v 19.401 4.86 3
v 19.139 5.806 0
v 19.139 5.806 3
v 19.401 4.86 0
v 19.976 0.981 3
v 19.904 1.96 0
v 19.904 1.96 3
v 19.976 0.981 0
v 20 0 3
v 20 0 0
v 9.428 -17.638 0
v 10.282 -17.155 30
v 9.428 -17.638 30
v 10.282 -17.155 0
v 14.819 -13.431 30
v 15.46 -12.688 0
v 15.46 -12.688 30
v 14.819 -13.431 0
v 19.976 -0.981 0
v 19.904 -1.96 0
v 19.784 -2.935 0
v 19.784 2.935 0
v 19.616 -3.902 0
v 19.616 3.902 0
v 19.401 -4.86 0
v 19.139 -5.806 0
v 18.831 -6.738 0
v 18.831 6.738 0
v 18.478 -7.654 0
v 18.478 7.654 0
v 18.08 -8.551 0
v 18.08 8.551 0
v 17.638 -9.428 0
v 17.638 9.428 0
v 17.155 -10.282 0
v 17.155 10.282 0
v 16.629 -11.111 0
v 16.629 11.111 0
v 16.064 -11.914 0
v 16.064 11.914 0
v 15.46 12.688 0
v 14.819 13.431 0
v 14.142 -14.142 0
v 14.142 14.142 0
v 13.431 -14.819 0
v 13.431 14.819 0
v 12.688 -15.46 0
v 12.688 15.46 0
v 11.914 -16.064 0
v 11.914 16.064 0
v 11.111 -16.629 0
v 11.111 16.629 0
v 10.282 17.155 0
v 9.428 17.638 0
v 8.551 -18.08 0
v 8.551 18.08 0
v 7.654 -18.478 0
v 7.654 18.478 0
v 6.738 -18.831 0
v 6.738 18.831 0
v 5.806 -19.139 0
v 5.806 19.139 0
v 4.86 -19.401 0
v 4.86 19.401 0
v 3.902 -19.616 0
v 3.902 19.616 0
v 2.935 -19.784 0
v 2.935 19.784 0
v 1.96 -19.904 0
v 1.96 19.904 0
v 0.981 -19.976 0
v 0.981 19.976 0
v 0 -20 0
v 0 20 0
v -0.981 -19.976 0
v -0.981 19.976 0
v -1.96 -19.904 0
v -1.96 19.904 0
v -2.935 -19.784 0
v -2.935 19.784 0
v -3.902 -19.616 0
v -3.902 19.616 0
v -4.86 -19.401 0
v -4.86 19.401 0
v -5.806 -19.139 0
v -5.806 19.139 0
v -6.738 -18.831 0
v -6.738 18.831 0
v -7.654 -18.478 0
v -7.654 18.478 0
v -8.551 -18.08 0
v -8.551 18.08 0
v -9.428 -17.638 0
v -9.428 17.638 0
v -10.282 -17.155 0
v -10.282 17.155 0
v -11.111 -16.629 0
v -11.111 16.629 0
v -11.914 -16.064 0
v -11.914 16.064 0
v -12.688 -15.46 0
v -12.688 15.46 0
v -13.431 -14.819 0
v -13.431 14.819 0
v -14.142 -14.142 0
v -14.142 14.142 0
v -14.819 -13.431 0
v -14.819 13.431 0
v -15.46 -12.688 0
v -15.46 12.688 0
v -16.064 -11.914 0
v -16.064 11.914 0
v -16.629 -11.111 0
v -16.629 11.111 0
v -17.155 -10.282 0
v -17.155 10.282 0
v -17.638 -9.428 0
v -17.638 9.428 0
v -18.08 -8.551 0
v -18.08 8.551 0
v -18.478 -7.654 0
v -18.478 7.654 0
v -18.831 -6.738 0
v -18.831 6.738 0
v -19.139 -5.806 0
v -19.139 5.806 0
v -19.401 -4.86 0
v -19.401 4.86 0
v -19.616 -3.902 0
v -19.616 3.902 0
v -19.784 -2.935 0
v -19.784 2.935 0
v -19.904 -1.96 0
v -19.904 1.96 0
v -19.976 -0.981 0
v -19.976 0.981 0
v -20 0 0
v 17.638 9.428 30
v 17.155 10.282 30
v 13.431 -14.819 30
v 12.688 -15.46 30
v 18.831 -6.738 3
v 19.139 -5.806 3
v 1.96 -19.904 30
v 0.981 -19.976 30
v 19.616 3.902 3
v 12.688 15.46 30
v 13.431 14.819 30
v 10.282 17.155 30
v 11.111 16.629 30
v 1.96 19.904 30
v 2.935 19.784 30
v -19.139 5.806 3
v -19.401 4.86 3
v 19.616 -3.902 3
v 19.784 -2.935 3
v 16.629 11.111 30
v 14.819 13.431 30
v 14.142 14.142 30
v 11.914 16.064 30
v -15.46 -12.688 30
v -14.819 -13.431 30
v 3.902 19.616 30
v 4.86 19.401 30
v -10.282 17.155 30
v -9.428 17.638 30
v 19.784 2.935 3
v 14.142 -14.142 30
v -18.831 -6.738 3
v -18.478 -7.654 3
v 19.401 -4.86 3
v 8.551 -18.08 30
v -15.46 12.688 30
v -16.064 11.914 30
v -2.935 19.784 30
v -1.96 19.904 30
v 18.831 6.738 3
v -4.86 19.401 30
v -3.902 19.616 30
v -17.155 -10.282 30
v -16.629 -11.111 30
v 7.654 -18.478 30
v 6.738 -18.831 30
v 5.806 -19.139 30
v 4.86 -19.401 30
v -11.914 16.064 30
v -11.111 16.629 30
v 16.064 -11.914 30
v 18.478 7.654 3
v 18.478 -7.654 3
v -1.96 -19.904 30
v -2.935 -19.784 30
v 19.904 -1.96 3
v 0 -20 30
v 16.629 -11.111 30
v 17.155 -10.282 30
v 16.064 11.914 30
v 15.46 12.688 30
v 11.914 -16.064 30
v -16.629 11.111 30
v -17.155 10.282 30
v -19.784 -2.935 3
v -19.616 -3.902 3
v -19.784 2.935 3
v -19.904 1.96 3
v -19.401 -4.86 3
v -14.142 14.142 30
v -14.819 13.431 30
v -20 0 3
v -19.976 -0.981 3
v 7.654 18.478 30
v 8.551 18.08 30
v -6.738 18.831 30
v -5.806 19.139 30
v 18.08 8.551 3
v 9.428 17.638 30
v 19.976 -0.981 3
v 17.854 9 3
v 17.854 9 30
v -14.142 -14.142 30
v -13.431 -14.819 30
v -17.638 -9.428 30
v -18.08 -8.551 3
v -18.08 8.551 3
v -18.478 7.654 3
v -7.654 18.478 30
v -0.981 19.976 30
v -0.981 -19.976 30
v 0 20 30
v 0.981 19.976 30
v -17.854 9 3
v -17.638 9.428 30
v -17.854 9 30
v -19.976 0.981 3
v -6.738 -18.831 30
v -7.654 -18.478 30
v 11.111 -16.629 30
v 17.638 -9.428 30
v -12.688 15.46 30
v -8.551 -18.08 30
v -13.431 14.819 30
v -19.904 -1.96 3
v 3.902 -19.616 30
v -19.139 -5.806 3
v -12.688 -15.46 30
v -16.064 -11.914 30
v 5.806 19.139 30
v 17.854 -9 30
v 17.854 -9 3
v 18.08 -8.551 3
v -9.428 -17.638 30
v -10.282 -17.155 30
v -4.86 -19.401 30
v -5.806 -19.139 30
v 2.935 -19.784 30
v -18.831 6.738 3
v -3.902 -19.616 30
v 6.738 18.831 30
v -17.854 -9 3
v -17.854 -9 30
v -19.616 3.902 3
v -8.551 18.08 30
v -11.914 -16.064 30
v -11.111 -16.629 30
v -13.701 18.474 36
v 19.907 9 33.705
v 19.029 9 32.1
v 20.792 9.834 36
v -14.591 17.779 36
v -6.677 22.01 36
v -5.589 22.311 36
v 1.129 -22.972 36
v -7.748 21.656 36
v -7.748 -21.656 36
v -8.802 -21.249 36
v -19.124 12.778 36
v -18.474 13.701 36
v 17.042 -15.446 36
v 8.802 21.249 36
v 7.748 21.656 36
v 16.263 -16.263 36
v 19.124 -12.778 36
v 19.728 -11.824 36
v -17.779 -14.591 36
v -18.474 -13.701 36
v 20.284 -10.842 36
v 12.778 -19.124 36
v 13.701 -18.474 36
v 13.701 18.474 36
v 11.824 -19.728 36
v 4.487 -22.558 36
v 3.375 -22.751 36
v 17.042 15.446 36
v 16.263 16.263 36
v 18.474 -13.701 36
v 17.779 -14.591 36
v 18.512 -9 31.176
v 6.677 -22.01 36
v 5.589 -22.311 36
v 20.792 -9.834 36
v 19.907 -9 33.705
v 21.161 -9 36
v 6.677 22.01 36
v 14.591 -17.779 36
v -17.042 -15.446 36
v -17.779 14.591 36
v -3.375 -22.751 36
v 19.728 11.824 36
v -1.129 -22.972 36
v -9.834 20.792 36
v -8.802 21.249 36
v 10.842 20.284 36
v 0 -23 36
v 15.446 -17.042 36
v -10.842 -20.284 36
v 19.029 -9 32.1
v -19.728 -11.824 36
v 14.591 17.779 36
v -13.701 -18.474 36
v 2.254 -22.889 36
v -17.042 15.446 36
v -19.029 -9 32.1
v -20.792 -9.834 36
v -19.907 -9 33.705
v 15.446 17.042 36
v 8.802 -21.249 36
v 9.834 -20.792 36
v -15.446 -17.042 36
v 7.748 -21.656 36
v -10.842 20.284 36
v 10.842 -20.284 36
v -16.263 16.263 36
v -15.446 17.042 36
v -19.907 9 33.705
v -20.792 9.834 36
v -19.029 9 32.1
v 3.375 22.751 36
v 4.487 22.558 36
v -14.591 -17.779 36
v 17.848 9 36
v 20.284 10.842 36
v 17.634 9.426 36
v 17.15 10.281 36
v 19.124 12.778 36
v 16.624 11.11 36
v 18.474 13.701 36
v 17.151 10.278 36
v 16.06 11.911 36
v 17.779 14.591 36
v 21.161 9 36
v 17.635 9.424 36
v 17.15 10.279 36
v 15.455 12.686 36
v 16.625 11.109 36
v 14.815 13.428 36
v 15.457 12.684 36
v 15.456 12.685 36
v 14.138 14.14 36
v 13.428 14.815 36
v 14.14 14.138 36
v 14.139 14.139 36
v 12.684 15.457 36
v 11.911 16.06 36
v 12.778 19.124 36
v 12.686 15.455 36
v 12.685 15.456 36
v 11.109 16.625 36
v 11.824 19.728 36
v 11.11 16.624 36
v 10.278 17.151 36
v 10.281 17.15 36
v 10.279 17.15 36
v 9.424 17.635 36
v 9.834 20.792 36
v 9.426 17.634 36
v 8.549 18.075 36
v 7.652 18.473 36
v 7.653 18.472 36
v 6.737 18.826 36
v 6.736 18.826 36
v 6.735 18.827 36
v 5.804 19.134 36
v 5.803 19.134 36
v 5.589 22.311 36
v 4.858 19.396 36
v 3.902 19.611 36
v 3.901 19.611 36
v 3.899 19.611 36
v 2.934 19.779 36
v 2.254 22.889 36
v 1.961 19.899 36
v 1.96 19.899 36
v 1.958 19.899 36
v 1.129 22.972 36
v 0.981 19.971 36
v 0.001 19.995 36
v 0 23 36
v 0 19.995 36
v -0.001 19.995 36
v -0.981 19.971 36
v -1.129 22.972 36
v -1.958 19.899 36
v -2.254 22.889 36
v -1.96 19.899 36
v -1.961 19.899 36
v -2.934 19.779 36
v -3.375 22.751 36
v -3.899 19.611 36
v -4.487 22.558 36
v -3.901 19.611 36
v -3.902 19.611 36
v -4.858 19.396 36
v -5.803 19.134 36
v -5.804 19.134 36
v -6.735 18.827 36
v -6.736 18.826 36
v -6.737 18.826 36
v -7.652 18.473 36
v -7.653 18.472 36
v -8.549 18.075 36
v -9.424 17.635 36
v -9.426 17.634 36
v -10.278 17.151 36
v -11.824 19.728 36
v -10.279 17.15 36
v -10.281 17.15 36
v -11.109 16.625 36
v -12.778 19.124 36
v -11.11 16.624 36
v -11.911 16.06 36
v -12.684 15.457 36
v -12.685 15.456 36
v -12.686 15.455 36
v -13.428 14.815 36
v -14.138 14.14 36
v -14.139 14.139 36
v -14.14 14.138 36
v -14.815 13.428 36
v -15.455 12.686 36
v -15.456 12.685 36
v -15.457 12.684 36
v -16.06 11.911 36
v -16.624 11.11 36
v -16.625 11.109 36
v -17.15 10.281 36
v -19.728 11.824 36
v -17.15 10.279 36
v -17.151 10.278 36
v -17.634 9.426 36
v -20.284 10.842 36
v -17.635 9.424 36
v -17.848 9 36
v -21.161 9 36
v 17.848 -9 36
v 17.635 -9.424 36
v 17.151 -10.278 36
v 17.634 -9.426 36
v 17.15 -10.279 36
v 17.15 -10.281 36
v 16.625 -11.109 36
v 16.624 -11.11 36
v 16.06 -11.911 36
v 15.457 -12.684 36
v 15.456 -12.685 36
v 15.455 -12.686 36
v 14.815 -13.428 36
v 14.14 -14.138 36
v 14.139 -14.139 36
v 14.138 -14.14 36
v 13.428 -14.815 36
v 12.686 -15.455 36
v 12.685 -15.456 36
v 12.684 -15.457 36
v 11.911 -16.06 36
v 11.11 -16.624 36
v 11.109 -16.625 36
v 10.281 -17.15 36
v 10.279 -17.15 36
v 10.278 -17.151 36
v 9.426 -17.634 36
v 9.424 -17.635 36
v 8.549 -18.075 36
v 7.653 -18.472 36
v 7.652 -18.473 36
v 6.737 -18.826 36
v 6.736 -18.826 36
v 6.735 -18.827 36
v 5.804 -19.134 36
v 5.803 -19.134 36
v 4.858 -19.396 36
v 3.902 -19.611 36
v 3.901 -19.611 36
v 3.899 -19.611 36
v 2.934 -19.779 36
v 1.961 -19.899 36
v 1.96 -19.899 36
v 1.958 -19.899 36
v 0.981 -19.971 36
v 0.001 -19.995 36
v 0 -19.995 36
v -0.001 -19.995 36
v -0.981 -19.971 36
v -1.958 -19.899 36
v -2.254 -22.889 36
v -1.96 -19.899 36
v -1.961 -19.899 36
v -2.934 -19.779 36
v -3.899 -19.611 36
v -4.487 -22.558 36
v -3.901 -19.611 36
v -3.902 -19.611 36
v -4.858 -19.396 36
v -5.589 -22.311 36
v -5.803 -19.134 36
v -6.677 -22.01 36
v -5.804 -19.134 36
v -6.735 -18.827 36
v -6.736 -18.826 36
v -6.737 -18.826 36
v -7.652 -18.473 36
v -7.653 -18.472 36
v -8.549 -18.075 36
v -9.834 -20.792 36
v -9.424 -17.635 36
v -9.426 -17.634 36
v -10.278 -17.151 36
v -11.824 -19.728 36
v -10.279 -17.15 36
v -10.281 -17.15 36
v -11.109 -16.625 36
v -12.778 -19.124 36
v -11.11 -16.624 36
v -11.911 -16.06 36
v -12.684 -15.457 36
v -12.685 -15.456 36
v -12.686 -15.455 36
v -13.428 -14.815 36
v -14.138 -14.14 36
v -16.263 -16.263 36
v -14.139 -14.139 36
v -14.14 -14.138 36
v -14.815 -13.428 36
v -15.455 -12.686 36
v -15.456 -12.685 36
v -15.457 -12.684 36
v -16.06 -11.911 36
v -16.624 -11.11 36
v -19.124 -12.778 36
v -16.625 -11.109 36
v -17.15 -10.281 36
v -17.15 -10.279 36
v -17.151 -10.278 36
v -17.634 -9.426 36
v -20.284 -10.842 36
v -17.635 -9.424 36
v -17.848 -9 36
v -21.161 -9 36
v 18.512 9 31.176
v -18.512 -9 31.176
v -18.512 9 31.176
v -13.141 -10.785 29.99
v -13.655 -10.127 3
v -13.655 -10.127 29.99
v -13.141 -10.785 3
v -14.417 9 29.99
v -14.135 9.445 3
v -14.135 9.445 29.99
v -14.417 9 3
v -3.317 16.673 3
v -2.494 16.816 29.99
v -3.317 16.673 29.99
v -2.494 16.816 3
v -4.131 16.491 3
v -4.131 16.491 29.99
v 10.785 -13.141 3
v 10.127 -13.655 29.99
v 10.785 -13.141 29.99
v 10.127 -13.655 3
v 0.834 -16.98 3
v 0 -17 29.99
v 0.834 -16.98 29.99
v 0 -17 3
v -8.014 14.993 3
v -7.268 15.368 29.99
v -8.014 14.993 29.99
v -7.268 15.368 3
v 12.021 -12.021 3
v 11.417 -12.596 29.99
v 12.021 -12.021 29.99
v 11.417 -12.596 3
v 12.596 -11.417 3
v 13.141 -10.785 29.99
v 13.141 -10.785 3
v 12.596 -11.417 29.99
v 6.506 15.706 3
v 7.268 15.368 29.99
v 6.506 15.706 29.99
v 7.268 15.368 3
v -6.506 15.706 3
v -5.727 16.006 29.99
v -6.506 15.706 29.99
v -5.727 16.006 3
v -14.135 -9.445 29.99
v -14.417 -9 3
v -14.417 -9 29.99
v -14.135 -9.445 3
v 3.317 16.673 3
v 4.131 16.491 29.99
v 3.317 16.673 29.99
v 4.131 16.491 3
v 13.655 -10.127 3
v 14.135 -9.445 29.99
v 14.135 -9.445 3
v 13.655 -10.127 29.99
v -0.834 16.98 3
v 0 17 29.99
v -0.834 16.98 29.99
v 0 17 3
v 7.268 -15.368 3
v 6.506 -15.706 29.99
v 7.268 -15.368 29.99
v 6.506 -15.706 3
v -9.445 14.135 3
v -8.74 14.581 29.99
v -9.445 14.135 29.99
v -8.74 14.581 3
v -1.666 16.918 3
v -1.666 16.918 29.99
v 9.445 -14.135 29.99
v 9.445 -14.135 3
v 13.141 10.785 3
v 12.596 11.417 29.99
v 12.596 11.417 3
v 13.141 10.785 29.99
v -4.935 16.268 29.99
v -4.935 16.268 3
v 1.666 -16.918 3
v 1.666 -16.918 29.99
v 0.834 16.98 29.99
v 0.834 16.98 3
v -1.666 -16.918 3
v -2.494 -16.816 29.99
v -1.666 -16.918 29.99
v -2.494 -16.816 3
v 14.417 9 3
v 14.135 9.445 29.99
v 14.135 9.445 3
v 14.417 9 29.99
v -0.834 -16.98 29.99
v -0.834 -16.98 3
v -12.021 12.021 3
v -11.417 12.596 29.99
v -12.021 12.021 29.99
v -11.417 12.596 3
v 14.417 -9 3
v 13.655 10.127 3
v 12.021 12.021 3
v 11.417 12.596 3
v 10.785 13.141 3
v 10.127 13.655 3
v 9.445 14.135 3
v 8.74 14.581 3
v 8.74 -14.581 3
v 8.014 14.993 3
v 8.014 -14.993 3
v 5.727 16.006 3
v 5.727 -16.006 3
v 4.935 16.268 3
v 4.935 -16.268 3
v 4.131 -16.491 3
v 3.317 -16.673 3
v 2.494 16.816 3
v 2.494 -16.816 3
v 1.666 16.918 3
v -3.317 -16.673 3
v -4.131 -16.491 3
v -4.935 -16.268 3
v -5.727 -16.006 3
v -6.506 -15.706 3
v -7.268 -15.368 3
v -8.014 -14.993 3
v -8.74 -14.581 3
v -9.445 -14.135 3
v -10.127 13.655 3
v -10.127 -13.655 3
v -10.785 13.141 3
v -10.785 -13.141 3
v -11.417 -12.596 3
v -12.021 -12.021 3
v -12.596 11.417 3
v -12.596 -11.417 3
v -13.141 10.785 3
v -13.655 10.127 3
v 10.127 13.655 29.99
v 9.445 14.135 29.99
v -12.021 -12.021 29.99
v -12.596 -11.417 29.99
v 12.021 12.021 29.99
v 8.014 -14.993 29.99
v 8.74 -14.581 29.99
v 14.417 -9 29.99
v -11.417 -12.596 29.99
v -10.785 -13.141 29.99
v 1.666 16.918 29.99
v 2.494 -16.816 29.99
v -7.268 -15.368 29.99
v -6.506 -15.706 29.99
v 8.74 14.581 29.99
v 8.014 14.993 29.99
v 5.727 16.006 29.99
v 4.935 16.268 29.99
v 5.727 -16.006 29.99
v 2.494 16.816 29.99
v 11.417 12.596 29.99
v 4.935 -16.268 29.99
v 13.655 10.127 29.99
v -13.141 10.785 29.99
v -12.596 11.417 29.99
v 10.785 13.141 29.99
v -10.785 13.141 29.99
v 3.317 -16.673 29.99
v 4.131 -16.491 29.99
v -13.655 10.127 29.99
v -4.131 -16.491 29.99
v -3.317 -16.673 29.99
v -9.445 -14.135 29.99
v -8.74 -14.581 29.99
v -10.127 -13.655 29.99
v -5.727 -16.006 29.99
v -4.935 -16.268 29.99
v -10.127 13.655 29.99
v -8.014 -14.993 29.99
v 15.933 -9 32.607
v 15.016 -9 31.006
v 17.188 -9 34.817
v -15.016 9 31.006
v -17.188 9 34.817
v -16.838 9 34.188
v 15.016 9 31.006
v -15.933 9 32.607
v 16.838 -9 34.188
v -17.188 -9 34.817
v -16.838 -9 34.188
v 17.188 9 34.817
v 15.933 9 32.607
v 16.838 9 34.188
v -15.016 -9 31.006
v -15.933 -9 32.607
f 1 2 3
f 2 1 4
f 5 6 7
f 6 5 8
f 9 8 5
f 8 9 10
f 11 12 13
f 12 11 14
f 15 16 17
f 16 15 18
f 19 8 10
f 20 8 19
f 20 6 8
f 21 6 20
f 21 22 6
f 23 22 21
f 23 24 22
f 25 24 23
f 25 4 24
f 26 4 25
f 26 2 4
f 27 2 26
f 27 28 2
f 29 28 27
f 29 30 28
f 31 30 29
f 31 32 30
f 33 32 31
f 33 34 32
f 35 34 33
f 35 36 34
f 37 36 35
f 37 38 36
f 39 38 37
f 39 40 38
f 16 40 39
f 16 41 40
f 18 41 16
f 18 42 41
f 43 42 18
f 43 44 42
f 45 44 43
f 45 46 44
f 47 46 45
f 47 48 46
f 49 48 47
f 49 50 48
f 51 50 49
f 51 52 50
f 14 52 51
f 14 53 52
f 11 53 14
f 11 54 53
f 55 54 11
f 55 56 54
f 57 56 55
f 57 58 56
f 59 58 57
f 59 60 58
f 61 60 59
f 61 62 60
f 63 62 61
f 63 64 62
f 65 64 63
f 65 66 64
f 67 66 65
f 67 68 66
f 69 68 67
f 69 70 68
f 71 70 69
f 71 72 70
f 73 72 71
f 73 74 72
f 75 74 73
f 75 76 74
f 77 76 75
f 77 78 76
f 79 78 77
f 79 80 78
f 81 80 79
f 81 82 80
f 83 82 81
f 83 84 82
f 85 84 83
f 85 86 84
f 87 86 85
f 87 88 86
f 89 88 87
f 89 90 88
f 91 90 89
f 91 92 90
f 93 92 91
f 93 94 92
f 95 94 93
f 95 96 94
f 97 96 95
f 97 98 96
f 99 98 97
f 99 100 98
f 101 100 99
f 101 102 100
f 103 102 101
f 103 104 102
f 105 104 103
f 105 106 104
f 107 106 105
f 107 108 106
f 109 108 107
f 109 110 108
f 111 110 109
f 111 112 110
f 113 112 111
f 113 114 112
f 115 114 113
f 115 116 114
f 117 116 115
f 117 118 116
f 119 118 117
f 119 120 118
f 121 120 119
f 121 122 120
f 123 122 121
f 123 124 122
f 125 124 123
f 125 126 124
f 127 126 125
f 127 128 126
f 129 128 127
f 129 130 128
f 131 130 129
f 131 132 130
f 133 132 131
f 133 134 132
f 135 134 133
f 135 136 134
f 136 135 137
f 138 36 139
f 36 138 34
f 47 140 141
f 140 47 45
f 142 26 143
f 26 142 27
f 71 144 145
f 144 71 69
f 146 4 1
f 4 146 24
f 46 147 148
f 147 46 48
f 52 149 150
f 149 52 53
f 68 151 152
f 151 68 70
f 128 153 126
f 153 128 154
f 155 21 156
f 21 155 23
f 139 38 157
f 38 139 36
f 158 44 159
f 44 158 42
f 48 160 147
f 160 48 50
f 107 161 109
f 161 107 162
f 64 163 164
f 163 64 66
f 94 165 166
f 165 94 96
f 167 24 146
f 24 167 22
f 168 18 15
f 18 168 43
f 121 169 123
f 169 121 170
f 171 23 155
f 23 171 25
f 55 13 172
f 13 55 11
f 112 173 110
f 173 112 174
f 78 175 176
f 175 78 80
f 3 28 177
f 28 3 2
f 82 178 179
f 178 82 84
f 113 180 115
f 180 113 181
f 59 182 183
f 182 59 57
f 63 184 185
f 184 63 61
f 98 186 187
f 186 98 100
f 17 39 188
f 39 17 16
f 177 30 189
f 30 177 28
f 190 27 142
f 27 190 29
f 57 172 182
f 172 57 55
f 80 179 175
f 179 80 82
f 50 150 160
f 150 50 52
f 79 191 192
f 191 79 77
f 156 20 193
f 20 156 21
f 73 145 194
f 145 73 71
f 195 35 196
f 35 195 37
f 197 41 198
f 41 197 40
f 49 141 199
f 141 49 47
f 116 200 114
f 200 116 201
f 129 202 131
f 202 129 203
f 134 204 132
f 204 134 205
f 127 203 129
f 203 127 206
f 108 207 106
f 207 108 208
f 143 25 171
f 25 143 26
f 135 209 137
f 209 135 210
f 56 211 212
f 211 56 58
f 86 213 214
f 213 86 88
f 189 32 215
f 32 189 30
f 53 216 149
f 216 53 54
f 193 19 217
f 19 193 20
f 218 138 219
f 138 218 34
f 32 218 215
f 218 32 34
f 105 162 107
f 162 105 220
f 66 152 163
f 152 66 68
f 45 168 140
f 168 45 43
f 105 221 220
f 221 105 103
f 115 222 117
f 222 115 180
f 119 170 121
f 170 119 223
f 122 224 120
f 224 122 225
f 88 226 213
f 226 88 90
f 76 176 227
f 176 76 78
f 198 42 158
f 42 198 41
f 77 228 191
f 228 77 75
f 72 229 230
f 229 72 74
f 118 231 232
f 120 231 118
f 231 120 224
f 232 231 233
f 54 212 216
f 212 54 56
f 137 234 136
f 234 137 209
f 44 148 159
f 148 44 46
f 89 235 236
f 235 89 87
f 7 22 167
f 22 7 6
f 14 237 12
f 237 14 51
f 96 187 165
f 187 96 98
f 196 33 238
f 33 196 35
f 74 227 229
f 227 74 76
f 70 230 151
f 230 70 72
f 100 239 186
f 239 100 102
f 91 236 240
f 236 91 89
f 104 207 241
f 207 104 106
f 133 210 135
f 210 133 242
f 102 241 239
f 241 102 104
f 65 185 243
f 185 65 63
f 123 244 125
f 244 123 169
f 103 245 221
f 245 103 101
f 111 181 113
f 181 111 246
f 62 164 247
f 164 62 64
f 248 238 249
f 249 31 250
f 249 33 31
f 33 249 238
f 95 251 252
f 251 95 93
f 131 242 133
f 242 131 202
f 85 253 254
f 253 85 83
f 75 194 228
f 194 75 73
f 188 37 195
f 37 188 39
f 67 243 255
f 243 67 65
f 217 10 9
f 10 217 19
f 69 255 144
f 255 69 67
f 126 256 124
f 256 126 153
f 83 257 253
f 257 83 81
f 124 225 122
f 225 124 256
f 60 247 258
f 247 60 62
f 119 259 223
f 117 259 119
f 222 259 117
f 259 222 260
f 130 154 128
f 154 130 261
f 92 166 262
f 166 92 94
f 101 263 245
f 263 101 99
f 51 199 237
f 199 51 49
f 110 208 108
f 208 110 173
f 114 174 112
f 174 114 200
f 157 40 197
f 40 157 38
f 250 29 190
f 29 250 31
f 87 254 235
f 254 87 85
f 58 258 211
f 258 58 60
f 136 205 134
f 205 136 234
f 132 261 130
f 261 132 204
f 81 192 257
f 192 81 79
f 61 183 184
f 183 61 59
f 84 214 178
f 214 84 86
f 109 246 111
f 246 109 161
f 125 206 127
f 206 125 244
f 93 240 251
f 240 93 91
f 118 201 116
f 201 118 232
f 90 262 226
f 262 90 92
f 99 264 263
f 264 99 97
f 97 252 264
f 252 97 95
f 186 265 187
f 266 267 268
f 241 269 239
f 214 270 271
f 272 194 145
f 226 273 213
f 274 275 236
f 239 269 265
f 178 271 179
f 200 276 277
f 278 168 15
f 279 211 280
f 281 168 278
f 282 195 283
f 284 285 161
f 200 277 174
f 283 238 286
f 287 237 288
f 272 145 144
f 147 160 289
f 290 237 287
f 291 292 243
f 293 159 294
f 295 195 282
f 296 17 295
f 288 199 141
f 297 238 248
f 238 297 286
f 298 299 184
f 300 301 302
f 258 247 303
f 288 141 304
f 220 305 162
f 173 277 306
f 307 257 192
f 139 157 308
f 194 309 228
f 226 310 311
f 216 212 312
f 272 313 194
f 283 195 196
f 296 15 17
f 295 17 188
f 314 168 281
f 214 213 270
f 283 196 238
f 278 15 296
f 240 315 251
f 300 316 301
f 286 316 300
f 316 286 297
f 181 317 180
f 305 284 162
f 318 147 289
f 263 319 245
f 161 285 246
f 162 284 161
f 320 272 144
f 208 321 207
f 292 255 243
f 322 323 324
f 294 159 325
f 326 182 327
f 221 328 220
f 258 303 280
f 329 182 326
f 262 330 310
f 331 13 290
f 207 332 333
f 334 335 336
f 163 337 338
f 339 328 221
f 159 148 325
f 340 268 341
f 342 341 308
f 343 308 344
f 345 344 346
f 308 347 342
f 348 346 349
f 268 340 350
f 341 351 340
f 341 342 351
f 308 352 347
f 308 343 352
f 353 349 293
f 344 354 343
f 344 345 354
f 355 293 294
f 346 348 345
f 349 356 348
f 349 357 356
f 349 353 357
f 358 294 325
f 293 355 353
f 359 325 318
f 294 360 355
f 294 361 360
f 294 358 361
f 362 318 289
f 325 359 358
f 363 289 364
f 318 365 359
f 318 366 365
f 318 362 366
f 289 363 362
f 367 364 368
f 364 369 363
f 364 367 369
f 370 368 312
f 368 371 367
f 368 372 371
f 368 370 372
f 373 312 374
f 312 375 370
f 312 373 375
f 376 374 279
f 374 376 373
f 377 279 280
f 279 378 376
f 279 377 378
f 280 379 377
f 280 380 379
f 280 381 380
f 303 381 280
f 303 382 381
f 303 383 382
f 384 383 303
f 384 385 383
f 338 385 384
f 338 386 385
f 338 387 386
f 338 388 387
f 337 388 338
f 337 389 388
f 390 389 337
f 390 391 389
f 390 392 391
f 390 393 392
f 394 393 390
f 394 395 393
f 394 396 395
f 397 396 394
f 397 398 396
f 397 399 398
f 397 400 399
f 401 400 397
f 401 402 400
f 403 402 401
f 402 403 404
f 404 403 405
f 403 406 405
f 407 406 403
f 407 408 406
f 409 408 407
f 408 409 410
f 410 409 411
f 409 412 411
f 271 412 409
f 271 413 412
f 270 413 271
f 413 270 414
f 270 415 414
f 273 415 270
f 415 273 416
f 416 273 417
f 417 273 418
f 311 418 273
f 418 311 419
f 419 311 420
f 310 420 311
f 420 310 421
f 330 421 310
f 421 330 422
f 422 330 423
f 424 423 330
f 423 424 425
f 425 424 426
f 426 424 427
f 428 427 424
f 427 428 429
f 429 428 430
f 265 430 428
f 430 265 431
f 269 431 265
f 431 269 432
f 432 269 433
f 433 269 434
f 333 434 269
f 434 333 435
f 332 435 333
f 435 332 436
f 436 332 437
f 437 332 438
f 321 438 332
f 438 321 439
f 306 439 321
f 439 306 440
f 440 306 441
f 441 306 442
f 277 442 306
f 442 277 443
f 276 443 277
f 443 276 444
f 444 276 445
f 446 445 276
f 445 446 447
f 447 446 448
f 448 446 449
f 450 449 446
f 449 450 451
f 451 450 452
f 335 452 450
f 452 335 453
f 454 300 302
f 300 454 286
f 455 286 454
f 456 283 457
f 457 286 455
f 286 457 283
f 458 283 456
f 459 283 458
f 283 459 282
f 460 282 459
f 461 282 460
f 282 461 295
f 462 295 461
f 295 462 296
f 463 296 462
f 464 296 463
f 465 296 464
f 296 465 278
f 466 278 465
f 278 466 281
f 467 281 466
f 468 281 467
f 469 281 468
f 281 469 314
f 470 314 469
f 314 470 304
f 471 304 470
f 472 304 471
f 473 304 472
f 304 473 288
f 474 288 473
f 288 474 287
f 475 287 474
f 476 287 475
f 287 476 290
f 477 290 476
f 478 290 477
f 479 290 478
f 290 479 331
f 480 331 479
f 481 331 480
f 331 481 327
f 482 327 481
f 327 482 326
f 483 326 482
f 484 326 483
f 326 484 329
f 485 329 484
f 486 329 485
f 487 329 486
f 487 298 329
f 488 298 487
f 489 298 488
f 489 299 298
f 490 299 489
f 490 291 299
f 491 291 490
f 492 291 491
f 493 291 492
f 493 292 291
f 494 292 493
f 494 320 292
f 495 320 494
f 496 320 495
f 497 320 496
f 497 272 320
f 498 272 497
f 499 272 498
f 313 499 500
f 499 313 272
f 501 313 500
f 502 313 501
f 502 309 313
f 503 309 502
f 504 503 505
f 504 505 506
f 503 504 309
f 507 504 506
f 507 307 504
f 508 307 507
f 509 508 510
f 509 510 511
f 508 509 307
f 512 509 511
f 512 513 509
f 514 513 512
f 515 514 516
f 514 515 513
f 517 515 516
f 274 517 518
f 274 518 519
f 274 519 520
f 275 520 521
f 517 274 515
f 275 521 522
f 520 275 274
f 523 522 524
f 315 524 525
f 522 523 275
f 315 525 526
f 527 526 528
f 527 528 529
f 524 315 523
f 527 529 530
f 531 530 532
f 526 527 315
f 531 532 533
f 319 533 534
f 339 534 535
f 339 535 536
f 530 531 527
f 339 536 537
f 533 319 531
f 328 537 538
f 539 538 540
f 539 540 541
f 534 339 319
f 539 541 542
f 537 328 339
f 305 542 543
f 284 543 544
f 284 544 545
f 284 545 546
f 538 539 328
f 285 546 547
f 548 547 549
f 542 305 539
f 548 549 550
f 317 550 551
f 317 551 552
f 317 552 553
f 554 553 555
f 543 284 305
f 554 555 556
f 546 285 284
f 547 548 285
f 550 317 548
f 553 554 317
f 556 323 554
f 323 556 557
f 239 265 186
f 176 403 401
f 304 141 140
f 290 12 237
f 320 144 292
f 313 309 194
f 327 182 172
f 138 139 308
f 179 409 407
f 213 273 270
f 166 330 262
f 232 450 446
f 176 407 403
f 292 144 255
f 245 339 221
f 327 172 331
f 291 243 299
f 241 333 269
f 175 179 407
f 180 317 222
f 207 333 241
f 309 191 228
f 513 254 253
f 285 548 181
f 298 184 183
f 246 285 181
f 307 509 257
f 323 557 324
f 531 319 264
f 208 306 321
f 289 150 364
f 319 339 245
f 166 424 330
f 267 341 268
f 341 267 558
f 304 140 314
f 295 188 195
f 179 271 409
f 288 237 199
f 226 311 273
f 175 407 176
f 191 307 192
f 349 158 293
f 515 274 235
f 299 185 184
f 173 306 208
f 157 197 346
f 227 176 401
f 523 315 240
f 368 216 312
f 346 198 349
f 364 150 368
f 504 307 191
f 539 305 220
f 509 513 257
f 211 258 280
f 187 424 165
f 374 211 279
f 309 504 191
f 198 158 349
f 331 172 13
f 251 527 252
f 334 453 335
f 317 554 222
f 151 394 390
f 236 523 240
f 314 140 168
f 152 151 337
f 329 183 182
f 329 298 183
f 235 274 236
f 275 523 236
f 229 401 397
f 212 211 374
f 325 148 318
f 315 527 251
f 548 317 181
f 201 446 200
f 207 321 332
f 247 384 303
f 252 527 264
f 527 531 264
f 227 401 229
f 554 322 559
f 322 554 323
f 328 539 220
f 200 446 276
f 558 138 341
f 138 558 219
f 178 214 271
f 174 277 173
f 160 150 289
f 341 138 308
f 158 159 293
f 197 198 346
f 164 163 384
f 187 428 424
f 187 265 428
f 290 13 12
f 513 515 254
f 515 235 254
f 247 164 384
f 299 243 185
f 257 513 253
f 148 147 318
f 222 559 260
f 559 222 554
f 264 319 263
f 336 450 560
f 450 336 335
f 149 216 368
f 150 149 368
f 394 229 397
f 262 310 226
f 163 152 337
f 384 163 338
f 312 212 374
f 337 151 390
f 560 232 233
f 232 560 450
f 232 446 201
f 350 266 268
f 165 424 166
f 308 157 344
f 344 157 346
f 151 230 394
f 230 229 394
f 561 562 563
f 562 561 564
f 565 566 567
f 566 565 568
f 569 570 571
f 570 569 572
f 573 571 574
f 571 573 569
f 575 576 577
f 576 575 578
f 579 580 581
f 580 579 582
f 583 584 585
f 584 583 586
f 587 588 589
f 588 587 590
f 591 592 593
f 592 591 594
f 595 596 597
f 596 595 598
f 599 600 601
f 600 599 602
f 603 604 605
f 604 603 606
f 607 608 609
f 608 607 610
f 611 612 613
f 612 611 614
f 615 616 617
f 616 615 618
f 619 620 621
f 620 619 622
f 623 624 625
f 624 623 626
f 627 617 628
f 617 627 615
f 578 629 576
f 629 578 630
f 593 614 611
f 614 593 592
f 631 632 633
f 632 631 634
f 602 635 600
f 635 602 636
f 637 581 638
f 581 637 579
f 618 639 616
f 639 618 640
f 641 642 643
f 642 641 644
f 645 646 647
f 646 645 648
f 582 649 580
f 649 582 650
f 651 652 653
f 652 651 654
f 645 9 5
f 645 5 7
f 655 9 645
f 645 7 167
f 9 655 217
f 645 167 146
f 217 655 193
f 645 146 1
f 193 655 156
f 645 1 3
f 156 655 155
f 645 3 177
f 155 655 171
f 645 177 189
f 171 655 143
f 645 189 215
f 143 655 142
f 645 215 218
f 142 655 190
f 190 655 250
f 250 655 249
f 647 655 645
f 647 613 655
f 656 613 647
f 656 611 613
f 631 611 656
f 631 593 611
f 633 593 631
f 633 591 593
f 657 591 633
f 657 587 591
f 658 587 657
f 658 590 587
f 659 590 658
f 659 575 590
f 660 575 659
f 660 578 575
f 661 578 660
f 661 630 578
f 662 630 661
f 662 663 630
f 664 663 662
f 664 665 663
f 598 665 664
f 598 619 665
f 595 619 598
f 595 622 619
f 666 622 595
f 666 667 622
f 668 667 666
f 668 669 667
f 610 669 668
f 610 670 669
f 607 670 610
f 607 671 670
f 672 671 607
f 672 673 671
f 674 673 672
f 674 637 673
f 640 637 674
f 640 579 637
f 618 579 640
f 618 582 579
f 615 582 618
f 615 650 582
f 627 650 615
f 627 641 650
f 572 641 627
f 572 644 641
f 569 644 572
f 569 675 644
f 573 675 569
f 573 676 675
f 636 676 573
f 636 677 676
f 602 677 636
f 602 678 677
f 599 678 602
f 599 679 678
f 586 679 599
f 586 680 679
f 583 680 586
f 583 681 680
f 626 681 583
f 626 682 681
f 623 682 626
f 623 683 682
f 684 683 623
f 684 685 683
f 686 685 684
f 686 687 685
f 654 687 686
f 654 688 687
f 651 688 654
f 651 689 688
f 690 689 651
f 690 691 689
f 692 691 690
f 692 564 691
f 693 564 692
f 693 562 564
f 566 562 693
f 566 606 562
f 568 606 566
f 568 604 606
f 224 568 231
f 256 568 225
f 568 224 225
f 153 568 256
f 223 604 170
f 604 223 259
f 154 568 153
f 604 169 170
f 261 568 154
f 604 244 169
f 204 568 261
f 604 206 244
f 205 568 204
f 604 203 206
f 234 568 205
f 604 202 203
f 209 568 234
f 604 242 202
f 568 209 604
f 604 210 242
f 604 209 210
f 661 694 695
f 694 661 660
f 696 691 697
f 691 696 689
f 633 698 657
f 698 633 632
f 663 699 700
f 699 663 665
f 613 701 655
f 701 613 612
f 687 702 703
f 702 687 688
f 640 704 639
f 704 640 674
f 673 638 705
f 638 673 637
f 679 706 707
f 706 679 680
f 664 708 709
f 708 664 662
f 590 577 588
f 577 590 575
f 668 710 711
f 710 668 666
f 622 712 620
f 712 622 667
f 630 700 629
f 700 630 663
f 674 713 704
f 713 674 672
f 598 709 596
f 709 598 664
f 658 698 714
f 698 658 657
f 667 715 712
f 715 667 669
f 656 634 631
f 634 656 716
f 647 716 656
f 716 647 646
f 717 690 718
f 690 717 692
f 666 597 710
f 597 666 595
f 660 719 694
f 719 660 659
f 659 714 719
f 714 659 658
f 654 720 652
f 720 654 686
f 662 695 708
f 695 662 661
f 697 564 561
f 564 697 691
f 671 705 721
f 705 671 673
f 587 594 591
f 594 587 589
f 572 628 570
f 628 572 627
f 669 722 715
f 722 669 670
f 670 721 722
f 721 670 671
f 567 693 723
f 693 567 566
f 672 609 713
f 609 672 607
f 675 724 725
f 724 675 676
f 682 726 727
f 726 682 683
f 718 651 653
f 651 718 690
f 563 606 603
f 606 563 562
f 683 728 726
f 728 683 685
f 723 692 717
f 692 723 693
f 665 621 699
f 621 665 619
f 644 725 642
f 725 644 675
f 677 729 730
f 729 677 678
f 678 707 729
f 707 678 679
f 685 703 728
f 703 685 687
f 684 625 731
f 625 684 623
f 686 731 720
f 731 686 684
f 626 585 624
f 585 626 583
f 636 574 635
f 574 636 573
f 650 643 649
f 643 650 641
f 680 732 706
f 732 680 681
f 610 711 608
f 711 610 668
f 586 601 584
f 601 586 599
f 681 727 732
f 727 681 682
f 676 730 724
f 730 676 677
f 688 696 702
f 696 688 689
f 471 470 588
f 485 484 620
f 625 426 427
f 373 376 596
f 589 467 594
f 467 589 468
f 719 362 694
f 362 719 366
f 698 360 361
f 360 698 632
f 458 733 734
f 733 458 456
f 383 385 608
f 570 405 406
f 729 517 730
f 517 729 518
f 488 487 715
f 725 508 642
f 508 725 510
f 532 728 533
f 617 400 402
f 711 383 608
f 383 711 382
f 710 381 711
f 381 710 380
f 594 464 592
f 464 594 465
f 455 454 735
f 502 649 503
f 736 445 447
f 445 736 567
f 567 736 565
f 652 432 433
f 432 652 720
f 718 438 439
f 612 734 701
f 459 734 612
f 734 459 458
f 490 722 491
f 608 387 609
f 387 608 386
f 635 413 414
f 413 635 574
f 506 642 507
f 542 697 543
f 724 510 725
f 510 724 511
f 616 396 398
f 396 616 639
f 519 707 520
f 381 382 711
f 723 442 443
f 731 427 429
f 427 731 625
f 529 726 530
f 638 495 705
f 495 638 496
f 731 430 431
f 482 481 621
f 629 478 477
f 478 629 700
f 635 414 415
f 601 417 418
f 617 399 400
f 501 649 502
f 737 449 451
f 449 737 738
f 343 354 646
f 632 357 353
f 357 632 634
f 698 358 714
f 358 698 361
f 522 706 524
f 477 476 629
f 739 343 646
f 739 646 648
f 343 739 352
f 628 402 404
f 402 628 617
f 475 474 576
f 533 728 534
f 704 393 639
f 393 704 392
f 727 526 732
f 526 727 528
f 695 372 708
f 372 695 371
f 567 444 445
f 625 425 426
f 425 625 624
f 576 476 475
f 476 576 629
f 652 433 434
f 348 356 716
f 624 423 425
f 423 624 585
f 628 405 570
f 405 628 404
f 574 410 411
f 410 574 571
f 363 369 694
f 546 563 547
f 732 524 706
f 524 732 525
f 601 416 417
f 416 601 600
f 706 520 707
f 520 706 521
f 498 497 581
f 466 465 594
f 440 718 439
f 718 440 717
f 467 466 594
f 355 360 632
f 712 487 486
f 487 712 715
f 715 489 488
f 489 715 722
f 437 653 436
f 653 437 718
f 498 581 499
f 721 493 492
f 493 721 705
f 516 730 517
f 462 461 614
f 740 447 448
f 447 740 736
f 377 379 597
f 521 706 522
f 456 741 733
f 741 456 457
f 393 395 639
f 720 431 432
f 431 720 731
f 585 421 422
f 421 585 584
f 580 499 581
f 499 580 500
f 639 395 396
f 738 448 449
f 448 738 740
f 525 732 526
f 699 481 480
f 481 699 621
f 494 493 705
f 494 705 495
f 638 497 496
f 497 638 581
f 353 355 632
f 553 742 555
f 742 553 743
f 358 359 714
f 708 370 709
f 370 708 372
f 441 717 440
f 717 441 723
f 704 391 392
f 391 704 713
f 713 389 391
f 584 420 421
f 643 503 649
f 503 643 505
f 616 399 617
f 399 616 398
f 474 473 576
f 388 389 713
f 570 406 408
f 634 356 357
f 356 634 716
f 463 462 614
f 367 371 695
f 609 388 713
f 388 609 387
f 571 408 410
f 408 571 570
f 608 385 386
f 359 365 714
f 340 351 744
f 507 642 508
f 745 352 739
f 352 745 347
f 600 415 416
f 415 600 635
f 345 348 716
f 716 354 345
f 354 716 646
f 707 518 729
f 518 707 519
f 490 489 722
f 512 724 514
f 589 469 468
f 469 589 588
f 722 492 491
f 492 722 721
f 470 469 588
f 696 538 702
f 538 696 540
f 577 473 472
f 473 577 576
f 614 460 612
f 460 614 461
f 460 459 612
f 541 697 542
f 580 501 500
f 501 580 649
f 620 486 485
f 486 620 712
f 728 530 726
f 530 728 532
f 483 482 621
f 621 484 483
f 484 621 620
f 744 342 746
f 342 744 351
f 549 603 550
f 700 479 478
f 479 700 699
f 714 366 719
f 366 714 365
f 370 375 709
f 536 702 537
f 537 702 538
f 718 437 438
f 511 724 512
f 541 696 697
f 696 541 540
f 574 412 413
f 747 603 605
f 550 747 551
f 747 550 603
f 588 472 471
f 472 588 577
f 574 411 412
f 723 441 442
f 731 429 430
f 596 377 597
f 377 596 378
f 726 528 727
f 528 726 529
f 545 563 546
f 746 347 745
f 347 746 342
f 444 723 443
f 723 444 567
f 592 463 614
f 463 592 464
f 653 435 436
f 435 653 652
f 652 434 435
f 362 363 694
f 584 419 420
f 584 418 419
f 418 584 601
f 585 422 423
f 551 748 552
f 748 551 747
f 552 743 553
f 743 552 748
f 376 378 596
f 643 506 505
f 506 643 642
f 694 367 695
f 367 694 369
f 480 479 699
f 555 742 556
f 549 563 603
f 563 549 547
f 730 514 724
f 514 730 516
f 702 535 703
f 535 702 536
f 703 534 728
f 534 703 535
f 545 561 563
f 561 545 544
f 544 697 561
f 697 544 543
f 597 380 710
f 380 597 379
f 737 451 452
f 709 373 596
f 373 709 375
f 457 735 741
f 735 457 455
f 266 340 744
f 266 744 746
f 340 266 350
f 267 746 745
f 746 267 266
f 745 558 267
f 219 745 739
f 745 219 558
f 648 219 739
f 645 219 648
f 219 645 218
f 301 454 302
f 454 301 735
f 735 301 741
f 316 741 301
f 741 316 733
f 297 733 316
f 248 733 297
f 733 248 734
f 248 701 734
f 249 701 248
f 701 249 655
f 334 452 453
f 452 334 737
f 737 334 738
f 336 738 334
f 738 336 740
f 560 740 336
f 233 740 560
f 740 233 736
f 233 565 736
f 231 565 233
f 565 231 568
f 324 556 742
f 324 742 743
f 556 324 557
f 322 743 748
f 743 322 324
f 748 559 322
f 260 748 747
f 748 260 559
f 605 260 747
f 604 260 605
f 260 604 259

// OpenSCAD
// =============================================================
//  connect_four_top_grab_chute.scad  (v3 — cylinder with open sides)
//  Vertical piece dispenser — top-down gripper access
//
//  HOW IT WORKS
//  ------------
//  1. Drop pieces in from the open top — they stack flat (horizontal).
//  2. The arm descends from above (-Z) with fingers open (spread wide
//     in X, outside the tube diameter). No walls at ±X, so fingers
//     have unobstructed vertical travel.
//  3. At disc level, gripper closes: fingers move inward in X and
//     contact the TOP disc's rim at the 9-o'clock and 3-o'clock
//     positions.
//  4. Arm lifts the disc straight up, clears the tube.
//  5. Wrist rotates 90° — disc is now vertical (edge-down).
//  6. Arm moves over the target column, opens gripper → disc falls in.
//  7. Gravity drops the remaining stack down one disc-height. Repeat.
//
//  WHY A CYLINDER WITH WIDE OPENINGS
//  -----------------------------------
//  The ±X openings remove the cylinder wall in the finger-approach
//  zone, giving the gripper unobstructed vertical travel. The
//  remaining arc walls at ±Y self-center the round disc (curved wall
//  matches disc perimeter), which is better than flat walls.
//  The disc cannot fall out: the ±Y arcs constrain it to < 1.5 mm
//  lateral play in X.
//
//  TOP VIEW (cross-section)
//  ------------------------
//
//     finger              finger
//       │                    │
//       ↓                    ↓
//   (open +X side)     (open -X side)
//
//       ╔══════════════════╗
//       ║  arc wall (+Y)   ║
//       ╠══╡           ╞══╣   ← opening_w wide — fingers pass here
//       ║       ●          ║   ← disc, constrained by ±Y arcs
//       ╠══╡           ╞══╣
//       ║  arc wall (-Y)   ║
//       ╚══════════════════╝
//
//  CAPACITY vs PRINT BED (Flashforge Adventurer 3: 150×150×150 mm)
//  ----------------------------------------------------------------
//  At piece_t = 8.5 mm, max 16 pieces fit within 150 mm Z height.
//  Print 2 chutes per color. 2×16 = 32 total, covers a full game.
//
//  PRINT PLAN — per color, 4 prints total
//  ----------------------------------------
//  RENDER = "chute"  → chute.stl   print 2×
//  RENDER = "base"   → base.stl    print 2×
//  Tube press-fits into base socket; CA glue for permanence.
//
//  BENCH ORIENTATION
//  -----------------
//  Orient so the ±X openings align with the gripper's open/close axis.
//  The orientation notch on the base marks the +Y (solid arc) face.
// =============================================================

/* ── SELECT WHAT TO RENDER ────────────────────────────────── */

RENDER = "chute";   // "chute" | "base"

/* ── DISC DIMENSIONS (measured) ─────────────────────────────*/

piece_d = 32.0;   // disc diameter (mm)
piece_t =  8.5;   // disc thickness (mm)

/* ── CHUTE PARAMETERS ────────────────────────────────────────*/

n_pieces   = 2;    // pieces per chute — set to 2 for preview print, 16 for production

wall_t     = 3.0;   // tube wall thickness (mm)
floor_t    = 3.0;   // floor below disc stack (mm)
id_clr     = 1.0;   // radial clearance per side — disc slides freely (mm)
top_clr    = 10.0;  // headroom above top disc for easy loading (mm)

// ±X side opening — cut through the cylinder wall at ±X in this Y band.
// opening_w must be:
//   > finger pad width (~10 mm for SO-101)  so fingers close without hitting arc
//   < disc diameter (32 mm)                 so disc cannot fall out sideways
opening_w  = 18.0;  // opening width in Y (mm). Default 18 mm.

// Loading chamfer at top
chamfer_h  = 6.0;   // height of inner flare at top (mm)
chamfer_r  = 3.0;   // extra inner radius at very top (mm)

/* ── BASE PARAMETERS ─────────────────────────────────────────*/

base_d       = 84.0;
base_h       = 12.0;
socket_clr   =  0.3;
socket_depth =  8.0;
notch_w      =  8.0;
notch_d      =  3.0;

/* ── DERIVED — do not edit ───────────────────────────────────*/

$fn = 128;

inner_r  = piece_d / 2 + id_clr;
outer_r  = inner_r + wall_t;
inner_d  = inner_r * 2;
outer_d  = outer_r * 2;

tube_h   = floor_t + n_pieces * piece_t + top_clr;
max_n    = floor((150 - floor_t - top_clr) / piece_t);

// Disc lateral play in X: how far disc can slide before arc wall stops it.
// At Y = opening_w/2, arc wall inner face is at X = sqrt(inner_r²-(opening_w/2)²)
// and disc edge at Y = opening_w/2 is at X = sqrt((piece_d/2)²-(opening_w/2)²).
disc_play_x = sqrt(inner_r*inner_r - (opening_w/2)*(opening_w/2))
            - sqrt((piece_d/2)*(piece_d/2) - (opening_w/2)*(opening_w/2));

echo(str("═══════════════════════════════════════════"));
echo(str("  Tube:     OD=", outer_d, "  ID=", inner_d, "  H=", tube_h, " mm"));
echo(str("  Opening:  W=", opening_w, " mm in Y  (disc=", piece_d,
         " mm — retained: ", (opening_w < piece_d) ? "YES" : "NO", ")"));
echo(str("  Disc lateral play: ", disc_play_x, " mm  (should be < 2 mm)"));
echo(str("  Bed fit:  ", (tube_h <= 150)
    ? str("OK  (", 150 - tube_h, " mm to spare)")
    : str("OVER by ", tube_h - 150, " mm — set n_pieces ≤ ", max_n)));
echo(str("═══════════════════════════════════════════"));

/* ── CHUTE ────────────────────────────────────────────────── */

module chute() {
    difference() {
        union() {
            // Main cylinder
            cylinder(h = tube_h, r = outer_r);

            // Loading chamfer: flared inner rim at top for easy loading
            translate([0, 0, tube_h])
                cylinder(h = chamfer_h, r1 = outer_r, r2 = outer_r + chamfer_r);
        }

        // ── Inner bore ─────────────────────────────────────────
        translate([0, 0, floor_t])
            cylinder(h = tube_h - floor_t + 0.01, r = inner_r);

        // ── Inner bore chamfer ─────────────────────────────────
        translate([0, 0, tube_h - 0.01])
            cylinder(h = chamfer_h + 0.02, r1 = inner_r, r2 = inner_r + chamfer_r);

        // ── +X side opening ────────────────────────────────────
        // Removes the cylinder wall in the +X half within the Y band.
        // Finger descends at X > outer_r, closes inward to grip disc rim.
        // X extent reaches outer_r + chamfer_r so the chamfer flare is
        // also cleared — without this a sliver of chamfer is left at ±X.
        translate([0, -opening_w / 2, floor_t])
            cube([outer_r + chamfer_r + 1, opening_w, tube_h - floor_t + chamfer_h + 0.02]);

        // ── -X side opening (mirror) ───────────────────────────
        translate([-(outer_r + chamfer_r + 1), -opening_w / 2, floor_t])
            cube([outer_r + chamfer_r + 1, opening_w, tube_h - floor_t + chamfer_h + 0.02]);
    }
}

/* ── BASE ─────────────────────────────────────────────────── */

module base() {
    difference() {
        cylinder(h = base_h, r = base_d / 2);

        // Circular socket — tube press-fits here.
        // Lower floor_t of tube is a full cylinder; socket grips it.
        translate([0, 0, base_h - socket_depth])
            cylinder(h = socket_depth + 0.01, r = outer_r + socket_clr);

        // Orientation notch on +Y face (the solid arc side)
        translate([-notch_w / 2, base_d / 2 - notch_d, -0.01])
            cube([notch_w, notch_d + 0.01, base_h + 0.02]);
    }
}

/* ── RENDER ───────────────────────────────────────────────── */

if (RENDER == "chute") chute();
if (RENDER == "base")  base();
